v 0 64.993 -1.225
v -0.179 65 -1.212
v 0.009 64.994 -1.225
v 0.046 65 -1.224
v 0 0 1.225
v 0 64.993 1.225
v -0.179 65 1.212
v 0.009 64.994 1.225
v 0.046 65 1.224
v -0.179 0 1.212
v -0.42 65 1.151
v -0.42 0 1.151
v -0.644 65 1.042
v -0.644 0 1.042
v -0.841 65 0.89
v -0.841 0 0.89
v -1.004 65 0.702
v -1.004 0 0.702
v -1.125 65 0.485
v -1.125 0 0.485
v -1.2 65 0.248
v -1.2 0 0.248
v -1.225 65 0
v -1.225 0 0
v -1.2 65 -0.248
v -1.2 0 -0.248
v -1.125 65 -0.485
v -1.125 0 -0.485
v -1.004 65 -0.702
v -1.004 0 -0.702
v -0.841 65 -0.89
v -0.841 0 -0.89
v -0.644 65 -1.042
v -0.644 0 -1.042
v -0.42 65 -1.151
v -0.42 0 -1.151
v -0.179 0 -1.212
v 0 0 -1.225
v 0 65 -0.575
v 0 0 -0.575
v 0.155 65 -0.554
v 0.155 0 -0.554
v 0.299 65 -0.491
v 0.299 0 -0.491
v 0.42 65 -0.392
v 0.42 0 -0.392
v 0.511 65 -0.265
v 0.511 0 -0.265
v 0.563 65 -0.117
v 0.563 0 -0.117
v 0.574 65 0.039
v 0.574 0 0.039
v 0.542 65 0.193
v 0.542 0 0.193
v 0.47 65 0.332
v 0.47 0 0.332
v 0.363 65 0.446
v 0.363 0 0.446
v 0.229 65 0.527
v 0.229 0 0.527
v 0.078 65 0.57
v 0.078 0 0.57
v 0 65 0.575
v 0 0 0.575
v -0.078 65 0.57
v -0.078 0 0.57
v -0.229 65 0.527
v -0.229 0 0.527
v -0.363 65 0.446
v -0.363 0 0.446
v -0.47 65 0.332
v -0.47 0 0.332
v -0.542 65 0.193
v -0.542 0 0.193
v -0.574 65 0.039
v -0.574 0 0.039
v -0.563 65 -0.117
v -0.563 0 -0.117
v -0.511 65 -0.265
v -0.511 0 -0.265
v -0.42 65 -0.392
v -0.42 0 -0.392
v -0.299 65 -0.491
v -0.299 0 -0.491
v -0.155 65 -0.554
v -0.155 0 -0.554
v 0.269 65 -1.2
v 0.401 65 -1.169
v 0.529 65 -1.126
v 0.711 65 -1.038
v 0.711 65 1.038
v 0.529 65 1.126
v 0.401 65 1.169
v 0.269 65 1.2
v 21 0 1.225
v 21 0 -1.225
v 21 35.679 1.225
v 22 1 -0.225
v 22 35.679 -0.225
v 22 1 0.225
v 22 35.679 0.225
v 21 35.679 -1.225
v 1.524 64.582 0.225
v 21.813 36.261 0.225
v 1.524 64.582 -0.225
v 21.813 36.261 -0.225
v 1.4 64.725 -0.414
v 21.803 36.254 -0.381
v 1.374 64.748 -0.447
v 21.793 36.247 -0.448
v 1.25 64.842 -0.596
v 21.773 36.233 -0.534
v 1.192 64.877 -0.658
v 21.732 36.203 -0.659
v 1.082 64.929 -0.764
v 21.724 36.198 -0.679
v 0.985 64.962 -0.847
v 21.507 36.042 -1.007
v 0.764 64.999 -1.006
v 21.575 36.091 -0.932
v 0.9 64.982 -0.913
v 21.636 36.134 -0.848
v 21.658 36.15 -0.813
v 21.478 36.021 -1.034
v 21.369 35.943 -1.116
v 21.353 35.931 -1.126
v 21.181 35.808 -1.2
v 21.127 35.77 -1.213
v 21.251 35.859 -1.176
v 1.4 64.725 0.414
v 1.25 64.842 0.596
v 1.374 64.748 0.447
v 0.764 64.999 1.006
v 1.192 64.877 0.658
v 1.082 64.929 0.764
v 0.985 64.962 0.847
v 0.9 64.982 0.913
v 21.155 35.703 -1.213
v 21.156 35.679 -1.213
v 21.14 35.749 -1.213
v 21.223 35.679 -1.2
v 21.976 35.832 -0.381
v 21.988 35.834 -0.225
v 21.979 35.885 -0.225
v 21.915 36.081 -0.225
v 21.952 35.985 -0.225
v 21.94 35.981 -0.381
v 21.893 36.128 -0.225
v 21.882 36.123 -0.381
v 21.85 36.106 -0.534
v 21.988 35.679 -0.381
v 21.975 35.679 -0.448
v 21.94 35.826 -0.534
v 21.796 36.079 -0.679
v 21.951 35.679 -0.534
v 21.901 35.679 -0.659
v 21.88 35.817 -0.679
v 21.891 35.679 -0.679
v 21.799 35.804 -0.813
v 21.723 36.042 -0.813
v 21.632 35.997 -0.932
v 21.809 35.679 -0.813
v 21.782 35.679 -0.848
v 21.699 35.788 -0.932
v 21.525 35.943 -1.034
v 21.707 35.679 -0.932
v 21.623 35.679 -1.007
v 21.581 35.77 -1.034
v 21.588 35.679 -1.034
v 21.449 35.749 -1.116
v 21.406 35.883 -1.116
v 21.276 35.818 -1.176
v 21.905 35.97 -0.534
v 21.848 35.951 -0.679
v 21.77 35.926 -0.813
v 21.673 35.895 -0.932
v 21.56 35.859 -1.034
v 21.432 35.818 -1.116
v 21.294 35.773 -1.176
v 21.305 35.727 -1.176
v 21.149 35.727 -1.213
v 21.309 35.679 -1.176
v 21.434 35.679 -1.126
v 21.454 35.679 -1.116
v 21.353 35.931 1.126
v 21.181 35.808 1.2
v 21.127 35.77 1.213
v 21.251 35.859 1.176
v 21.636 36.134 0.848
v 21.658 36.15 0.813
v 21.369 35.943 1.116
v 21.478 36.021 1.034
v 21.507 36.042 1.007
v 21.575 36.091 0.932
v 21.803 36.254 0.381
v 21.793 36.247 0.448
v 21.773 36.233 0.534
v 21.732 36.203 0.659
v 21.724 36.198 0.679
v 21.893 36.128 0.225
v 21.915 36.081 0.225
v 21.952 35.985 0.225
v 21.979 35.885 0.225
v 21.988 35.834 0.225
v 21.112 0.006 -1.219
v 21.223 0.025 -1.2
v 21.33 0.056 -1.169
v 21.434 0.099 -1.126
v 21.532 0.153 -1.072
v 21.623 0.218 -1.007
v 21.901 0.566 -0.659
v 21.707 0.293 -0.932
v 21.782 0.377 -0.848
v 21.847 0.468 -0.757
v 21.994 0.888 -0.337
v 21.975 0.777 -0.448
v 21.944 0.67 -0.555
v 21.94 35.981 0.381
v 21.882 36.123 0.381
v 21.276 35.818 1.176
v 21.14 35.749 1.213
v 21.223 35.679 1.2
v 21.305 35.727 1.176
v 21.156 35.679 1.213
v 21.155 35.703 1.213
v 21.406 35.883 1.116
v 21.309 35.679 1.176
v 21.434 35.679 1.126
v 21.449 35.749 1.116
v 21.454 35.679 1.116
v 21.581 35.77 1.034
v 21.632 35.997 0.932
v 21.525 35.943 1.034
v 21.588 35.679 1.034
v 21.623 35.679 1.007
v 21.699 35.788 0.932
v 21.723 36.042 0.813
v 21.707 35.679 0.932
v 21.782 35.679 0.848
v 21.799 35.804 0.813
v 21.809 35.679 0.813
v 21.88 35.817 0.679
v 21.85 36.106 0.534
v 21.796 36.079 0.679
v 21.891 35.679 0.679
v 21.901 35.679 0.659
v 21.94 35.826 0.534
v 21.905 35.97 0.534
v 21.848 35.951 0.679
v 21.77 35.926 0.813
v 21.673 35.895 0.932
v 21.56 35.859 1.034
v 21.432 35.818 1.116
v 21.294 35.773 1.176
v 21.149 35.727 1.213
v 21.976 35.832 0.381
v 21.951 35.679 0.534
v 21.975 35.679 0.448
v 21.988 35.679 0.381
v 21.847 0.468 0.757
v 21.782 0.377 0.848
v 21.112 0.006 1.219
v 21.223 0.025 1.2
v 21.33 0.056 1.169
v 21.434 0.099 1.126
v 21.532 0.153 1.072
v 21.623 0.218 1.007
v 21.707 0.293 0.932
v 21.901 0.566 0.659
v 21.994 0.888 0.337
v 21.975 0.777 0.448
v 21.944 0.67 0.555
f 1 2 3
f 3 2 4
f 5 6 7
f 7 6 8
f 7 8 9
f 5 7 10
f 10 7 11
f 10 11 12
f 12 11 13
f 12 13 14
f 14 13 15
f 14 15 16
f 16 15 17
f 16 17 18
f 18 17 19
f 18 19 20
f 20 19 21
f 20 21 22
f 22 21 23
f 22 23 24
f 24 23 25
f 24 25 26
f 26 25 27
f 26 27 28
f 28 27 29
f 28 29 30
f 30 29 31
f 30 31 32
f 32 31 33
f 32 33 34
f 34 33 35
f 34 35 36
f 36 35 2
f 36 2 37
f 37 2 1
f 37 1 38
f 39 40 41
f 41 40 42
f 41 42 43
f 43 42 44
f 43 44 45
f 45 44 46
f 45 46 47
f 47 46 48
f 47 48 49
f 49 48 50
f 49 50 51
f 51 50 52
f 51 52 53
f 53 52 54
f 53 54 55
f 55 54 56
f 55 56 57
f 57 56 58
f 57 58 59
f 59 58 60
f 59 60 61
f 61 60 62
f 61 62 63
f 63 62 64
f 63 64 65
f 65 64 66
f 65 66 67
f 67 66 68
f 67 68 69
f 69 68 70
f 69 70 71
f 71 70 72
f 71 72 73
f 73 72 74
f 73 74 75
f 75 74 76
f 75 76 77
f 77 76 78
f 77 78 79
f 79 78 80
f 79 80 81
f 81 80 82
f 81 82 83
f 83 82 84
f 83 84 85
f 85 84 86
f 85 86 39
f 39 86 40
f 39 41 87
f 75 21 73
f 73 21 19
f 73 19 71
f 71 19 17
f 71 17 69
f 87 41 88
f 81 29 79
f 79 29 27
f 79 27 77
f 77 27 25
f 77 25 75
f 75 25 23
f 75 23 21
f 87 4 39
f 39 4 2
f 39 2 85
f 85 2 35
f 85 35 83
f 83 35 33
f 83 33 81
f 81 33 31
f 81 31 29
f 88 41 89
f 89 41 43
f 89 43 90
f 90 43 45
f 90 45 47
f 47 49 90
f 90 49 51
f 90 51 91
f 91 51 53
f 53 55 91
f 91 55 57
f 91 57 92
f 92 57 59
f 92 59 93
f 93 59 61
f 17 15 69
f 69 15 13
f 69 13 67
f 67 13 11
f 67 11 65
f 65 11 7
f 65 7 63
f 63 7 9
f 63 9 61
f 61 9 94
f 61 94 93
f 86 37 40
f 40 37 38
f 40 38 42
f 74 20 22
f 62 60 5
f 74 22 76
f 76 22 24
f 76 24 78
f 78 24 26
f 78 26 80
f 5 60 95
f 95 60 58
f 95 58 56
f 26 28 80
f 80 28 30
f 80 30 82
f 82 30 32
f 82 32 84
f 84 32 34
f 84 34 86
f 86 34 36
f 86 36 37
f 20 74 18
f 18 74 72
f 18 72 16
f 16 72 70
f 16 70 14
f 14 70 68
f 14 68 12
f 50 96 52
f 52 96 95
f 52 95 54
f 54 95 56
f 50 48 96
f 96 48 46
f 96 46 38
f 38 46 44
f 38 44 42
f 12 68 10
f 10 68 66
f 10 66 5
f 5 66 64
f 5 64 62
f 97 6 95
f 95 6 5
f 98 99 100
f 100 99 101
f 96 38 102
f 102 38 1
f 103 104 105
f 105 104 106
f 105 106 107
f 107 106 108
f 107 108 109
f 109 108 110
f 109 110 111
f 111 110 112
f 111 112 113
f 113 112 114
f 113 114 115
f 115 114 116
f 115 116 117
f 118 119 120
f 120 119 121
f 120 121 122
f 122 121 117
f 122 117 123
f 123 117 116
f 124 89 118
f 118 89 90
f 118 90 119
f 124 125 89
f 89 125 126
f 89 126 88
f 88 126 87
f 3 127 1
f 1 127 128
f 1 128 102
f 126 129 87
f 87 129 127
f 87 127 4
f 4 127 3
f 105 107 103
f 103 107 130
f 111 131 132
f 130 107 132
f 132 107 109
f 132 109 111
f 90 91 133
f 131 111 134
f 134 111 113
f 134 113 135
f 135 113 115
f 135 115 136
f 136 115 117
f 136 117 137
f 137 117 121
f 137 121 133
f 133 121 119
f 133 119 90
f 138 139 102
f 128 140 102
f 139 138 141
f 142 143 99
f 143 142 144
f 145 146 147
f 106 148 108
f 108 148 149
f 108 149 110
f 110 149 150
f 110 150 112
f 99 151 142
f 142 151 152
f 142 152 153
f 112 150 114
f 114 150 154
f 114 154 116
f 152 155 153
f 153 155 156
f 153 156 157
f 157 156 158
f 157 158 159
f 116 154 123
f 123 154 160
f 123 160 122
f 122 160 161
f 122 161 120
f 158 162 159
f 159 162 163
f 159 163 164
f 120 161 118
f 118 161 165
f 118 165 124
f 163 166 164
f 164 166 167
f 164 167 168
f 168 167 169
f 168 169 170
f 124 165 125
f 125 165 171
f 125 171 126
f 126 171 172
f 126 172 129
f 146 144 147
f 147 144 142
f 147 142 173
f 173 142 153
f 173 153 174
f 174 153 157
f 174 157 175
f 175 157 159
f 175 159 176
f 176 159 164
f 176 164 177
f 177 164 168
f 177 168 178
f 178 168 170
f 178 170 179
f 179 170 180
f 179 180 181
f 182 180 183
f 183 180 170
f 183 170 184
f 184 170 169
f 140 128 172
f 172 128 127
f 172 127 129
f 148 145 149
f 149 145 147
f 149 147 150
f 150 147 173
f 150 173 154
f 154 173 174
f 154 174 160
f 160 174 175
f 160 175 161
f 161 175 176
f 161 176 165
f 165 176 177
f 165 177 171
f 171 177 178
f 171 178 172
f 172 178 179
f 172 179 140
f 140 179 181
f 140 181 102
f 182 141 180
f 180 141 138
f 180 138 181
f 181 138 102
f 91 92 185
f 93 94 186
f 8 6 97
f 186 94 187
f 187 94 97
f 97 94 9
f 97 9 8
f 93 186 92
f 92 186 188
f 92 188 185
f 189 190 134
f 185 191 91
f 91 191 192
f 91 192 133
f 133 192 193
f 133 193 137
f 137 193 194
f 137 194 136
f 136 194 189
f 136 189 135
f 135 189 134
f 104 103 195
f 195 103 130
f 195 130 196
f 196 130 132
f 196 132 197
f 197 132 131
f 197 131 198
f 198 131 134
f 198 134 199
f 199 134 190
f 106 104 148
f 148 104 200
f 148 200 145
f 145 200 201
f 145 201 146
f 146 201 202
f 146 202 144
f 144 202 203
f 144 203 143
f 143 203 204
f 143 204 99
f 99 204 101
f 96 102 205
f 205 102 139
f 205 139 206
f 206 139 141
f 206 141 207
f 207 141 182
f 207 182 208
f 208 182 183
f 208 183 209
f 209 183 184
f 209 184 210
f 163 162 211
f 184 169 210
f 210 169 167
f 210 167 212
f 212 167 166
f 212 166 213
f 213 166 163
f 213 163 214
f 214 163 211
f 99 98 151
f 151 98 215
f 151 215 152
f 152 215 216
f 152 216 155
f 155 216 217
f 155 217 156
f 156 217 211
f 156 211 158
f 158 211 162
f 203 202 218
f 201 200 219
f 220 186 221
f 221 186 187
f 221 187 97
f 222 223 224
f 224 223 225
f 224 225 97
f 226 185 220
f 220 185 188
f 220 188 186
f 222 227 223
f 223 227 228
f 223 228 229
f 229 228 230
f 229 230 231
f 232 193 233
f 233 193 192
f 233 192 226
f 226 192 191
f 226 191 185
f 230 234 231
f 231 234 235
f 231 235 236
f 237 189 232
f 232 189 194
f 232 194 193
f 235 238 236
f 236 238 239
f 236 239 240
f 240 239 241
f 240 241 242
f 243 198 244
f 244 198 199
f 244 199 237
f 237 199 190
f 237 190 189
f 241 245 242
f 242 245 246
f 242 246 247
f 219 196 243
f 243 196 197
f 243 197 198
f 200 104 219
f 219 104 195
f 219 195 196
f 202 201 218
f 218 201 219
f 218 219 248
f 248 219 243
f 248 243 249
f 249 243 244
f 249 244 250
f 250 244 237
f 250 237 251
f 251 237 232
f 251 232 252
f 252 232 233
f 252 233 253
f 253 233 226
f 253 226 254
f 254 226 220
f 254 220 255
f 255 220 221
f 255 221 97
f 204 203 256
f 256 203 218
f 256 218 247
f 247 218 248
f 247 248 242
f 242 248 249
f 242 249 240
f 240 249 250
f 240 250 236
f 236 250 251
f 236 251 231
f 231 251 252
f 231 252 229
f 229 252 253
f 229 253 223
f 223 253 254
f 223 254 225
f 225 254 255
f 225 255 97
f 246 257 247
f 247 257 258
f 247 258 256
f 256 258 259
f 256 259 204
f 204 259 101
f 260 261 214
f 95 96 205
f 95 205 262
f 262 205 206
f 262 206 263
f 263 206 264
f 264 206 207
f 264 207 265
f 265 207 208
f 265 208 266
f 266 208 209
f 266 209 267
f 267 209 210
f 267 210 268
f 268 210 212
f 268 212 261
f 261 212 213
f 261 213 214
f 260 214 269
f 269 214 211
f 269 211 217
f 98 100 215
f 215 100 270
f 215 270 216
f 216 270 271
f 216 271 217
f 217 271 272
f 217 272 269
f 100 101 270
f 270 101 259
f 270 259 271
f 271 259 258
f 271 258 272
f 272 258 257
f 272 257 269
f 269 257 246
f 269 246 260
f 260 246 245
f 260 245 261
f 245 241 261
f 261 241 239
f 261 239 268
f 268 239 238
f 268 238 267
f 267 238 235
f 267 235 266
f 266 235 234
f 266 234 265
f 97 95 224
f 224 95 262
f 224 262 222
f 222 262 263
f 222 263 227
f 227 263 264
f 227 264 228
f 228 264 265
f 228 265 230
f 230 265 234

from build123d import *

# Parameters (mm, degrees)
SKETCH1_R                       = 1.225
SKETCH1_R_2                     = 0.56
BOSS_EXTRUDE1_DEPTH             = 65
BOSS_EXTRUDE2_DEPTH             = 36
BOSS_EXTRUDE3_REACH             = 70.633
BOSS_EXTRUDE3_DIRECTION_2_REACH = 70.633
CUT_EXTRUDE1_DEPTH              = 69.633086955
CUT_EXTRUDE1_DEPTH_BACK         = 69.633086955
SKETCH3_R                       = 0.56
FILLET2_R                       = 1


with BuildPart() as part:
    # Sketch1 → Boss-Extrude1 (new body)
    with BuildSketch(Plane(origin=(0, 0, 0), x_dir=(1, 0, 0), z_dir=(0, 1, 0))):
        with Locations(Location((0, 0, 0), (0, 0, 270))):
            Circle(SKETCH1_R)
        with Locations(Location((0, 0, 0), (0, 0, 270))):
            Circle(SKETCH1_R_2, mode=Mode.SUBTRACT)
    extrude(amount=BOSS_EXTRUDE1_DEPTH)

    # Sketch1<4> → Boss-Extrude2 (add)
    with BuildSketch(Plane(origin=(0, 0, 0), x_dir=(1, 0, 0), z_dir=(0, 1, 0))):
        with BuildLine():
            Line((22, 1.225), (0, 1.225))
            ThreePointArc((0, 1.225), (0.866205807, 0.866205807), (1.225, 0))
            ThreePointArc((1.225, 0), (0.866205807, -0.866205807), (0, -1.225))
            Line((0, -1.225), (22, -1.225))
            Line((22, -1.225), (22, 1.225))
        make_face()
    extrude(amount=BOSS_EXTRUDE2_DEPTH)

    # Boss-Extrude3: up to this face of the body (flat: up to its plane)
    boss_extrude3_end = Plane(part.part.faces().sort_by_distance((11, 18, 1.225))[0])
    # Sketch2 → Boss-Extrude3 (add, up to the picked face)
    with BuildSketch(Plane.XY, mode=Mode.PRIVATE) as boss_extrude3_sk1:
        Polygon((1.225, 65), (22, 36), (0, 36), (0, 65), align=None)
    boss_extrude3_tool1 = split(extrude(boss_extrude3_sk1.sketch, amount=BOSS_EXTRUDE3_REACH, mode=Mode.PRIVATE), bisect_by=boss_extrude3_end, keep=Keep.BOTH, mode=Mode.PRIVATE)
    add(boss_extrude3_tool1.solids().sort_by(Axis((7.354871, 46.176534, 0), (0, 0, 1)))[0])

    # Boss-Extrude3 direction 2: up to this face of the body (flat: up to its plane)
    boss_extrude3_direction_2_end = Plane(part.part.faces().sort_by_distance((11, 18, -1.225))[0])
    # Sketch2 → Boss-Extrude3 direction 2 (add, up to the picked face)
    with BuildSketch(Plane.XY, mode=Mode.PRIVATE) as boss_extrude3_direction_2_sk1:
        Polygon((1.225, 65), (22, 36), (0, 36), (0, 65), align=None)
    boss_extrude3_direction_2_tool1 = split(extrude(boss_extrude3_direction_2_sk1.sketch, amount=-BOSS_EXTRUDE3_DIRECTION_2_REACH, mode=Mode.PRIVATE), bisect_by=boss_extrude3_direction_2_end, keep=Keep.BOTH, mode=Mode.PRIVATE)
    add(boss_extrude3_direction_2_tool1.solids().sort_by(Axis((7.354871, 46.176534, 0), (0, 0, -1)))[0])

    # Sketch3 → Cut-Extrude1 (cut, two sides: drawn at the far end of the back side and taken through both)
    with BuildSketch(Plane(origin=(0, 0, 0), x_dir=(1, 0, 0), z_dir=(0, 1, 0)).offset(-CUT_EXTRUDE1_DEPTH_BACK)):
        with Locations(Location((0, 0, 0), (0, 0, 270))):
            Circle(SKETCH3_R)
    extrude(amount=CUT_EXTRUDE1_DEPTH + CUT_EXTRUDE1_DEPTH_BACK, mode=Mode.SUBTRACT)

    # Fillet2
    # the kernel refuses this fillet: 1 mm, written as the material it takes off along each edge
    with BuildSketch(Plane(origin=(21, 35.678771199, 0.225), x_dir=(0.8129277181323856, 0.5823645980758727, 0), z_dir=(0, 0, 1))) as fillet2_piece_1_section:
        Polygon((0, 0), (FILLET2_R * 1.02, 0), (FILLET2_R * 1.02, -FILLET2_R * 0.327653377515), (FILLET2_R * 0.829186272495, -FILLET2_R * 0.594011890037), align=None)
    fillet2_piece_1 = extrude(amount=FILLET2_R * 1.02, mode=Mode.PRIVATE)
    fillet2_piece_1 = fillet2_piece_1 - Plane(origin=(21, 35.678771199, 0.225), x_dir=(-0.9520839558915971, -0.3058367880648226, 0), z_dir=(0, 0, 1)) * Sphere(FILLET2_R, mode=Mode.PRIVATE)
    add(fillet2_piece_1, mode=Mode.SUBTRACT)
    with BuildSketch(Plane(origin=(21, 35.678771199, -0.225), x_dir=(0.8129277181323856, 0.5823645980758727, 0), z_dir=(0, 0, -1))) as fillet2_piece_2_section:
        Polygon((0, 0), (FILLET2_R * 1.02, 0), (FILLET2_R * 1.02, FILLET2_R * 0.327653377515), (FILLET2_R * 0.829186272495, FILLET2_R * 0.594011890037), align=None)
    fillet2_piece_2 = extrude(amount=FILLET2_R * 1.02, mode=Mode.PRIVATE)
    fillet2_piece_2 = fillet2_piece_2 - Plane(origin=(21, 35.678771199, -0.225), x_dir=(-0.9520839558915971, -0.3058367880648226, 0), z_dir=(0, 0, -1)) * Sphere(FILLET2_R, mode=Mode.PRIVATE)
    add(fillet2_piece_2, mode=Mode.SUBTRACT)
    with BuildSketch(Plane(origin=(22, -2.5, 1.225), x_dir=(0, 0, -1), z_dir=(0, 1, 0))) as fillet2_piece_3:
        with BuildLine():
            CenterArc((FILLET2_R, FILLET2_R), FILLET2_R, 180, 90)
            Line((0, FILLET2_R), (0, 0))
            Line((0, 0), (FILLET2_R, 0))
        make_face()
    extrude(amount=38.178771199, mode=Mode.SUBTRACT)
    with BuildSketch(Plane(origin=(22, -2.5, -1.225), x_dir=(0, 0, 1), z_dir=(0, 1, 0))) as fillet2_piece_4:
        with BuildLine():
            CenterArc((FILLET2_R, -FILLET2_R), FILLET2_R, 90, 90)
            Line((0, -FILLET2_R), (0, 0))
            Line((0, 0), (FILLET2_R, 0))
        make_face()
    extrude(amount=38.178771199, mode=Mode.SUBTRACT)
    with BuildSketch(Plane(origin=(22, 0, 3.725), x_dir=(0, 1, 0), z_dir=(0, 0, -1))) as fillet2_piece_5:
        with BuildLine():
            CenterArc((FILLET2_R, -FILLET2_R), FILLET2_R, 90, 90)
            Line((0, -FILLET2_R), (0, 0))
            Line((0, 0), (FILLET2_R, 0))
        make_face()
    extrude(amount=7.45, mode=Mode.SUBTRACT)
    with BuildSketch(Plane(origin=(1.225, 65, 2.509355892), x_dir=(-1, 0, 0), z_dir=(0, 0, -1))) as fillet2_piece_6:
        with BuildLine():
            CenterArc((FILLET2_R * 0.513742356926, -FILLET2_R), FILLET2_R, 90, 54.382971688)
            Line((-FILLET2_R * 0.299185361206, -FILLET2_R * 0.417635401924), (0, 0))
            Line((0, 0), (FILLET2_R * 0.513742356926, 0))
        make_face()
    extrude(amount=5.018711785, mode=Mode.SUBTRACT)
    with BuildSketch(Plane(origin=(-0.230911495, 67.032319295, 1.225), x_dir=(0, 0, -1), z_dir=(0.5823645980758727, -0.8129277181323856, 0))) as fillet2_piece_7_section:
        with BuildLine():
            CenterArc((FILLET2_R, -FILLET2_R), FILLET2_R, 90, 90)
            Line((0, -FILLET2_R), (0, 0))
            Line((0, 0), (FILLET2_R, 0))
        make_face()
    fillet2_piece_7 = extrude(amount=37.852299549, mode=Mode.PRIVATE)
    fillet2_piece_7 = fillet2_piece_7 - Plane(origin=(0, 50.565320585, 0), x_dir=(0, 0, 1), z_dir=(0, -1, 0)) * Cylinder(1.225, 80, mode=Mode.PRIVATE)
    add(fillet2_piece_7, mode=Mode.SUBTRACT)
    with BuildSketch(Plane(origin=(-0.230911495, 67.032319295, -1.225), x_dir=(0, 0, 1), z_dir=(0.5823645980758727, -0.8129277181323856, 0))) as fillet2_piece_8_section:
        with BuildLine():
            CenterArc((FILLET2_R, FILLET2_R), FILLET2_R, 180, 90)
            Line((0, FILLET2_R), (0, 0))
            Line((0, 0), (FILLET2_R, 0))
        make_face()
    fillet2_piece_8 = extrude(amount=37.852299549, mode=Mode.PRIVATE)
    fillet2_piece_8 = fillet2_piece_8 - Plane(origin=(0, 50.565320569, 0), x_dir=(0, 0, 1), z_dir=(0, -1, 0)) * Cylinder(1.225, 80, mode=Mode.PRIVATE)
    add(fillet2_piece_8, mode=Mode.SUBTRACT)
    with BuildSketch(Plane(origin=(22, 36, 0.225), x_dir=(-0.582364598075886, 0.812927718132376, 0), z_dir=(0, 0, -1))) as fillet2_piece_9:
        with BuildLine():
            CenterArc((FILLET2_R * 0.321228801486, -FILLET2_R), FILLET2_R, 90, 35.617028312)
            Line((-FILLET2_R * 0.26113579659, -FILLET2_R * 0.187072281868), (0, 0))
            Line((0, 0), (FILLET2_R * 0.321228801486, 0))
        make_face()
    extrude(amount=0.45, mode=Mode.SUBTRACT)


solid = part.part
